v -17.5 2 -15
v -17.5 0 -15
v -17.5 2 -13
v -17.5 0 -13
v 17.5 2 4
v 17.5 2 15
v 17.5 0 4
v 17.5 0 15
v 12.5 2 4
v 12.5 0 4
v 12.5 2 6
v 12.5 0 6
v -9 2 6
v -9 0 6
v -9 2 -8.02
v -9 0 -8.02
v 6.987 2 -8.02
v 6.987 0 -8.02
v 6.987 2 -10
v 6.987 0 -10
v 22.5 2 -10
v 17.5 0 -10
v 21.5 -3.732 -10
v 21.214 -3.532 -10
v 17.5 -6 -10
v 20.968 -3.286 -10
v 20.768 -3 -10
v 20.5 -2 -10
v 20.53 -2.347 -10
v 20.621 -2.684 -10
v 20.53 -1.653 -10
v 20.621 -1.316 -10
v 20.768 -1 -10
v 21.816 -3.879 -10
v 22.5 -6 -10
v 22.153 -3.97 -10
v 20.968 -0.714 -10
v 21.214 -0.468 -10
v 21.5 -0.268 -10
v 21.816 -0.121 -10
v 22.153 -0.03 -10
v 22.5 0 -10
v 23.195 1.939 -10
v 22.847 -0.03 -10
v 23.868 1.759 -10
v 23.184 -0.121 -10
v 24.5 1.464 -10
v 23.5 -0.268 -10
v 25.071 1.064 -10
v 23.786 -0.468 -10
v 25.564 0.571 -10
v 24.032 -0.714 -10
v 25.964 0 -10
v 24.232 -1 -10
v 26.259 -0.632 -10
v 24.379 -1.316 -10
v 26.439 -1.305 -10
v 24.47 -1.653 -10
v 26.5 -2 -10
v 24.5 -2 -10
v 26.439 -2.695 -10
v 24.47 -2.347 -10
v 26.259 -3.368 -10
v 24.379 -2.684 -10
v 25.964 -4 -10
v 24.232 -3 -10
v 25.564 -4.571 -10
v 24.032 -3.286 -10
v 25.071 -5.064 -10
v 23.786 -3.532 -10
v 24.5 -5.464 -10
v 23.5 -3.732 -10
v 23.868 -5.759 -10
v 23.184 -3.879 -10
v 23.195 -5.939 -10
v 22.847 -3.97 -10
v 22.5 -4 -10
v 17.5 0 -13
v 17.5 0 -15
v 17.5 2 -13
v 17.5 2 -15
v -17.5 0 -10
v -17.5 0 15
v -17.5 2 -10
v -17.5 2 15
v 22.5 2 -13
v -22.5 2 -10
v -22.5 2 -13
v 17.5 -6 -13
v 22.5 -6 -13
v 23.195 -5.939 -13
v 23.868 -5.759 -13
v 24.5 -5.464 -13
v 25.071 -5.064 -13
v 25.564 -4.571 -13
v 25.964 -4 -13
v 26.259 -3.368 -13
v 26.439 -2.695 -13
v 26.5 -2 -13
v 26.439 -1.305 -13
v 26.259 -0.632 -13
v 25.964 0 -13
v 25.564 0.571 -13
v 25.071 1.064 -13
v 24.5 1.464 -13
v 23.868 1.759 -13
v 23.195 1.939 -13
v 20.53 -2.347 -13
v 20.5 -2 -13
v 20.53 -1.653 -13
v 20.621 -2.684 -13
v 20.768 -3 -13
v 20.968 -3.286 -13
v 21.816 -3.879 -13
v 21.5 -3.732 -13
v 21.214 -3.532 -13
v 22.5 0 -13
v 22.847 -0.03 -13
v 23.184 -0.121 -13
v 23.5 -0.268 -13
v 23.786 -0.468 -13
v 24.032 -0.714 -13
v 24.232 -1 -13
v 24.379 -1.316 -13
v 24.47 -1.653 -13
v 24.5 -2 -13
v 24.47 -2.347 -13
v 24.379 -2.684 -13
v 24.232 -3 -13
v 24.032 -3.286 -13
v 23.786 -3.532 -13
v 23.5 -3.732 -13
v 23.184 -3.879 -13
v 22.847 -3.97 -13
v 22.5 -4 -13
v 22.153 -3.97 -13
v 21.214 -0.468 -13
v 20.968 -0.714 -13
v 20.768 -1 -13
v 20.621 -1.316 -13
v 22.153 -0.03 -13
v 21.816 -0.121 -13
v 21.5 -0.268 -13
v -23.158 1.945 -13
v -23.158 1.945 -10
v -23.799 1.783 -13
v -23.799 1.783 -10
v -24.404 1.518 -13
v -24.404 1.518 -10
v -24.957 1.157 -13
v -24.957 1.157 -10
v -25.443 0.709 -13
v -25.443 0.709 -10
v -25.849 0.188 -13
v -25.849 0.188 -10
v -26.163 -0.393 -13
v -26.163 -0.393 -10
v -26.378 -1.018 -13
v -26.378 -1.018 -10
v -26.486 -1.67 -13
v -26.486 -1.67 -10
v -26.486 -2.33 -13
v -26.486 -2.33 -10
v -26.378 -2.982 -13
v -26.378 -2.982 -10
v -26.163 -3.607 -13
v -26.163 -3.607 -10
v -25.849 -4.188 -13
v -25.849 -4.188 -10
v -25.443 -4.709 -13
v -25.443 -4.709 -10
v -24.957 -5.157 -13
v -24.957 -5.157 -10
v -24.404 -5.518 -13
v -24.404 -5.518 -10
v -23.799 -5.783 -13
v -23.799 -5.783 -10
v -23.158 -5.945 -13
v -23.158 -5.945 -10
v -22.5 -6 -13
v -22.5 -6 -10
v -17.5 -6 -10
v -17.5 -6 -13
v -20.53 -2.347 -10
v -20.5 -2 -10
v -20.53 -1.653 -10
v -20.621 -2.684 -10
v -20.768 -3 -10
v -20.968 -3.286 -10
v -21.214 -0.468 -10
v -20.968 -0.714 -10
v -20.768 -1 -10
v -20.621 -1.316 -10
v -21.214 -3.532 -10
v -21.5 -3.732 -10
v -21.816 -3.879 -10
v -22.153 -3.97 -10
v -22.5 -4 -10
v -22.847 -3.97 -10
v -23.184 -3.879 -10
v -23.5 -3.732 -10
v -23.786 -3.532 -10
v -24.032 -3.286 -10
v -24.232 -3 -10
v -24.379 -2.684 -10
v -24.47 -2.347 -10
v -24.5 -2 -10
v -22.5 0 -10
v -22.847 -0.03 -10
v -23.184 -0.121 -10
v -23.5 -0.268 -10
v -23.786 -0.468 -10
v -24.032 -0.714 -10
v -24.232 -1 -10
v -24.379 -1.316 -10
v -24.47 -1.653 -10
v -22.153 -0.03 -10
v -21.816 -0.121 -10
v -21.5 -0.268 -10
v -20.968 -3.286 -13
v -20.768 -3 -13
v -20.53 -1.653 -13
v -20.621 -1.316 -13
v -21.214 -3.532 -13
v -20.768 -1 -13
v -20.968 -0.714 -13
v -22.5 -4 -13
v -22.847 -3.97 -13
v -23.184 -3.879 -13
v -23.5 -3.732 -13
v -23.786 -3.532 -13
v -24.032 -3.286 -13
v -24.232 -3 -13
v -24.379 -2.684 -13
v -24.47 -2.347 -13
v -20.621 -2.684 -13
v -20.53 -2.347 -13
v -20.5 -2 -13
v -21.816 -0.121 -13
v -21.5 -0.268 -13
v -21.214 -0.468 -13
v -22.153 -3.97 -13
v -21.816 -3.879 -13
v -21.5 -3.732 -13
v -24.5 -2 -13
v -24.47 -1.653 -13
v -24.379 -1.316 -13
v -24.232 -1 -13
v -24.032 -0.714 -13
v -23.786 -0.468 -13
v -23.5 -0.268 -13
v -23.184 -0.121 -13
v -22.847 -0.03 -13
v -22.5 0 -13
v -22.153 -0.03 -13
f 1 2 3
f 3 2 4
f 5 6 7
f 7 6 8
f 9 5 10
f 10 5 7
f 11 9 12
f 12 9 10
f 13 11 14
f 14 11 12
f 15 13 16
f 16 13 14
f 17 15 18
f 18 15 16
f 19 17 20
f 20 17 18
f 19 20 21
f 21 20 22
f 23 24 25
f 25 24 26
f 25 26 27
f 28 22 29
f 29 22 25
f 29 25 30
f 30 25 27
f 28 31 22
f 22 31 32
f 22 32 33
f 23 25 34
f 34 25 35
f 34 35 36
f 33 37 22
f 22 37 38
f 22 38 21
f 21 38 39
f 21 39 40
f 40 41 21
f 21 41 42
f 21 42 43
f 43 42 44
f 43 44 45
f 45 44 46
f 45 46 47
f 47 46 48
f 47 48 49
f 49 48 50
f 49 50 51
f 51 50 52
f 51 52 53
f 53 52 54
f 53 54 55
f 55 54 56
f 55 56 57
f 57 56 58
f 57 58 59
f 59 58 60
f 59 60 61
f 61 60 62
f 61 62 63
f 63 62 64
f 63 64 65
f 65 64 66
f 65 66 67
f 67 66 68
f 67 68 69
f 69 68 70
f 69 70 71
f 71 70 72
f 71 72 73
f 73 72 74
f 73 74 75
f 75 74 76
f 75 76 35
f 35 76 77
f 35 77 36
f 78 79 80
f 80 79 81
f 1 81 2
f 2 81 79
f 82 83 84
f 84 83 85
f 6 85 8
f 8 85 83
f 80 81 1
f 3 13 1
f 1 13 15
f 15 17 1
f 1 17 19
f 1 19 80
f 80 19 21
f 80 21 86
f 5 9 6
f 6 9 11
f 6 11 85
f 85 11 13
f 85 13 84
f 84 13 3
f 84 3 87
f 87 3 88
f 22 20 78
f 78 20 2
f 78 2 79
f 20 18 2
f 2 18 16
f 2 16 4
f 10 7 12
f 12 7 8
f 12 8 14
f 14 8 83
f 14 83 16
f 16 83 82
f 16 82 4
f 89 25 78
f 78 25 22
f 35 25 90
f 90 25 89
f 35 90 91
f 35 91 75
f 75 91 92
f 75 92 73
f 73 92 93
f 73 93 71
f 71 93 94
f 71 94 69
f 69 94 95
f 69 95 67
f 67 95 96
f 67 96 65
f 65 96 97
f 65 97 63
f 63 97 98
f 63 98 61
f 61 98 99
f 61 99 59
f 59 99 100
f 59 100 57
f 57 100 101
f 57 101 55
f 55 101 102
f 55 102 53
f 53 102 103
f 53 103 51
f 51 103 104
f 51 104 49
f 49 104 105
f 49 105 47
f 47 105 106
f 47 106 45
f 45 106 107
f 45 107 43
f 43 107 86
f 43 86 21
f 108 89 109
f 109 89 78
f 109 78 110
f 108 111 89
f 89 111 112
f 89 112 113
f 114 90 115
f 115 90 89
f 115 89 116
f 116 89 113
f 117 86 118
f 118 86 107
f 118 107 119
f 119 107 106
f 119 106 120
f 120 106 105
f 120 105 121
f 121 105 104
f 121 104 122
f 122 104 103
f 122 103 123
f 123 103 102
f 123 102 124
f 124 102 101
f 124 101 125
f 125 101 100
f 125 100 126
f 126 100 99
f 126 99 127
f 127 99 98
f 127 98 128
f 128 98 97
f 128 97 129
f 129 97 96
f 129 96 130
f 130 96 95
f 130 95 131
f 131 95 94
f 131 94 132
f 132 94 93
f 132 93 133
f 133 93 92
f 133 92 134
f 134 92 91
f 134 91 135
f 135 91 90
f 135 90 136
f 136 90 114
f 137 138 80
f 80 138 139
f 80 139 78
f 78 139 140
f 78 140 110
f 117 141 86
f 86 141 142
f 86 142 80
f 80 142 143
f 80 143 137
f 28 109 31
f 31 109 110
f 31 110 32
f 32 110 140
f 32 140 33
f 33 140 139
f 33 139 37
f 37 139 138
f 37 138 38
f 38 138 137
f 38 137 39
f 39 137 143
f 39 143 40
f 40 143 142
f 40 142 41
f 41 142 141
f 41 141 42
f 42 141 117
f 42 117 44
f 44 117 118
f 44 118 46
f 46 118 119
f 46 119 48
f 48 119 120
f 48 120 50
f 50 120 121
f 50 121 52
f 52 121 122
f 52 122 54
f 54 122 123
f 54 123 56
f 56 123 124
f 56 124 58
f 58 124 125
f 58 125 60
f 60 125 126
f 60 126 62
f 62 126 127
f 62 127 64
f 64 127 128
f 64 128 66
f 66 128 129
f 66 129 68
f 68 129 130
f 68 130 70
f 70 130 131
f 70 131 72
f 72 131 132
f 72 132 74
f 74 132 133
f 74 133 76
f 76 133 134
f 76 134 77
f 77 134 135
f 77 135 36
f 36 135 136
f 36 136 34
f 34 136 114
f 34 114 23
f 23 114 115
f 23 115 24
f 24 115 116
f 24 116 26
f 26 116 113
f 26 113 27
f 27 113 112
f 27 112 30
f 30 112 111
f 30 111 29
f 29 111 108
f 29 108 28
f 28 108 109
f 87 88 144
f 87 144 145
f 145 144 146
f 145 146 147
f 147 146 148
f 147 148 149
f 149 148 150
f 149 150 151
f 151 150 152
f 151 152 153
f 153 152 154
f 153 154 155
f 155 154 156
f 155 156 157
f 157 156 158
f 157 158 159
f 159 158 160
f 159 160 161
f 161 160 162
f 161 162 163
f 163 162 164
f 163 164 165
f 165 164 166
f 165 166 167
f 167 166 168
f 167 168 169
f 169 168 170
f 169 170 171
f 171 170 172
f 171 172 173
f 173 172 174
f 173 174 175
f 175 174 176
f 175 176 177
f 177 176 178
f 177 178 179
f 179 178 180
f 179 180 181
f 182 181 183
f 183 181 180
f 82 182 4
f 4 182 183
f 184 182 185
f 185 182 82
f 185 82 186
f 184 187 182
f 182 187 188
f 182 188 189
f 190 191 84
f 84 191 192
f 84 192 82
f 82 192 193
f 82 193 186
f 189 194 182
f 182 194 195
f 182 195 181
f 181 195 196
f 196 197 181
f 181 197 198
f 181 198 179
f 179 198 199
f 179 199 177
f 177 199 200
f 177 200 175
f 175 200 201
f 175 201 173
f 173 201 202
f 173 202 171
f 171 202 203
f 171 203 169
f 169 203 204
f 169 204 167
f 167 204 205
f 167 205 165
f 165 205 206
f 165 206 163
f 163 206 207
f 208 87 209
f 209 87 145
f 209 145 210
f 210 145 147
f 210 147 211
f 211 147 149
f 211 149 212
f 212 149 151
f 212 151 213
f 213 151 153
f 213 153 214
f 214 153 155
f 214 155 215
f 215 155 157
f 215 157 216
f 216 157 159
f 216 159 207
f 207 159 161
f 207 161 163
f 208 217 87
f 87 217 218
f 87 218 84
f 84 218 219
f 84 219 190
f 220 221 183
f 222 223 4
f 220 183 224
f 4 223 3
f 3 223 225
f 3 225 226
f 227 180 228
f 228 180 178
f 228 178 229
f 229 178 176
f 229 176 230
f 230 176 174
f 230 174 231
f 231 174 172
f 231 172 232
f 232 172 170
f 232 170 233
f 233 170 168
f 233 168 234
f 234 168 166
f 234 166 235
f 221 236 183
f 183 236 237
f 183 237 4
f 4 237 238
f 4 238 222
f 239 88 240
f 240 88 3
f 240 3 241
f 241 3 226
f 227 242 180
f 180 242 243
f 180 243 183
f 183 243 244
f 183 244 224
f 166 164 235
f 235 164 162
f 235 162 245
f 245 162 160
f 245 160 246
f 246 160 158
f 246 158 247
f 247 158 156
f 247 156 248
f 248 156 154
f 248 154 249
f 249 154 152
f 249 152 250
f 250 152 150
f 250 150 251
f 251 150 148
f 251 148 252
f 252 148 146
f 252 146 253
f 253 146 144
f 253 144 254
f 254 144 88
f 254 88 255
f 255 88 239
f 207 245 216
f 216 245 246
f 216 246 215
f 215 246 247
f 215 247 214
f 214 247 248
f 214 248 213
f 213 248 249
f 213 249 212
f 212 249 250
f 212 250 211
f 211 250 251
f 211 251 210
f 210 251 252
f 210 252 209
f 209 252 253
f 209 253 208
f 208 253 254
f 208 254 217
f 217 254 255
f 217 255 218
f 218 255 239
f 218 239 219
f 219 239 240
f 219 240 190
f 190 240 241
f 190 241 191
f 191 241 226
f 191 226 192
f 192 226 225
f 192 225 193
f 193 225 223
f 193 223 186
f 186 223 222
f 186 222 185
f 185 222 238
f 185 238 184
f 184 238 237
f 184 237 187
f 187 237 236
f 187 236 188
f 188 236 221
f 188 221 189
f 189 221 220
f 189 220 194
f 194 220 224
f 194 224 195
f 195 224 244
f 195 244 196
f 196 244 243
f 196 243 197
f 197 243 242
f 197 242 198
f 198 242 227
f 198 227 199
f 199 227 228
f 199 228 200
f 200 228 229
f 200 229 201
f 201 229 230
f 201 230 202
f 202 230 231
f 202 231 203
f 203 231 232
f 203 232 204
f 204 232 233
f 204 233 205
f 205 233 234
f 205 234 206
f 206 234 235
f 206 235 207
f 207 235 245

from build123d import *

# Parameters (mm, degrees)
SALIENTE_EXTRUIR3_DEPTH = 2
SALIENTE_EXTRUIR4_START = -2
CROQUIS3_R              = 2
SALIENTE_EXTRUIR4_DEPTH = 3


with BuildPart() as part:
    # Croquis1 → Saliente-Extruir3 (new body)
    with BuildSketch(Plane(origin=(0, 0, 0), x_dir=(1, 0, 0), z_dir=(0, 1, 0))):
        Polygon((-17.5, 5), (-17.5, -5), (-17.5, -15), (17.5, -15), (17.5, -6), (17.5, -4), (12.5, -4), (12.5, -6), (-9, -6), (-9, 8.019718755), (6.986881597, 8.019718755), (6.986881597, 10), (17.5, 10), (17.5, 15), (5, 15), (-5, 15), (-17.5, 15), align=None)
    extrude(amount=SALIENTE_EXTRUIR3_DEPTH)

    # Croquis3 → Saliente-Extruir4 (add)
    # profile 1 of 2: a face of its own
    with BuildSketch(Plane(origin=(0, 0, -15), x_dir=(-1, 0, 0), z_dir=(0, 0, -1)).offset(SALIENTE_EXTRUIR4_START)):
        with BuildLine():
            Line((-17.5, 2), (-17.5, -6))
            Line((-17.5, -6), (-22.5, -6))
            ThreePointArc((-22.5, -6), (-26.5, -2), (-22.5, 2))
            Line((-22.5, 2), (-17.5, 2))
        make_face()
        with Locations((-22.5, -2)):
            Circle(CROQUIS3_R, mode=Mode.SUBTRACT)
    # profile 2 of 2: a face of its own
    with BuildSketch(Plane(origin=(0, 0, -15), x_dir=(-1, 0, 0), z_dir=(0, 0, -1)).offset(SALIENTE_EXTRUIR4_START)):
        with BuildLine():
            Line((17.5, 2), (17.5, -6))
            Line((17.5, -6), (22.5, -6))
            ThreePointArc((22.5, -6), (26.5, -2), (22.5, 2))
            Line((22.5, 2), (17.5, 2))
        make_face()
        with Locations((22.5, -2)):
            Circle(CROQUIS3_R, mode=Mode.SUBTRACT)
    extrude(amount=-SALIENTE_EXTRUIR4_DEPTH)


solid = part.part
